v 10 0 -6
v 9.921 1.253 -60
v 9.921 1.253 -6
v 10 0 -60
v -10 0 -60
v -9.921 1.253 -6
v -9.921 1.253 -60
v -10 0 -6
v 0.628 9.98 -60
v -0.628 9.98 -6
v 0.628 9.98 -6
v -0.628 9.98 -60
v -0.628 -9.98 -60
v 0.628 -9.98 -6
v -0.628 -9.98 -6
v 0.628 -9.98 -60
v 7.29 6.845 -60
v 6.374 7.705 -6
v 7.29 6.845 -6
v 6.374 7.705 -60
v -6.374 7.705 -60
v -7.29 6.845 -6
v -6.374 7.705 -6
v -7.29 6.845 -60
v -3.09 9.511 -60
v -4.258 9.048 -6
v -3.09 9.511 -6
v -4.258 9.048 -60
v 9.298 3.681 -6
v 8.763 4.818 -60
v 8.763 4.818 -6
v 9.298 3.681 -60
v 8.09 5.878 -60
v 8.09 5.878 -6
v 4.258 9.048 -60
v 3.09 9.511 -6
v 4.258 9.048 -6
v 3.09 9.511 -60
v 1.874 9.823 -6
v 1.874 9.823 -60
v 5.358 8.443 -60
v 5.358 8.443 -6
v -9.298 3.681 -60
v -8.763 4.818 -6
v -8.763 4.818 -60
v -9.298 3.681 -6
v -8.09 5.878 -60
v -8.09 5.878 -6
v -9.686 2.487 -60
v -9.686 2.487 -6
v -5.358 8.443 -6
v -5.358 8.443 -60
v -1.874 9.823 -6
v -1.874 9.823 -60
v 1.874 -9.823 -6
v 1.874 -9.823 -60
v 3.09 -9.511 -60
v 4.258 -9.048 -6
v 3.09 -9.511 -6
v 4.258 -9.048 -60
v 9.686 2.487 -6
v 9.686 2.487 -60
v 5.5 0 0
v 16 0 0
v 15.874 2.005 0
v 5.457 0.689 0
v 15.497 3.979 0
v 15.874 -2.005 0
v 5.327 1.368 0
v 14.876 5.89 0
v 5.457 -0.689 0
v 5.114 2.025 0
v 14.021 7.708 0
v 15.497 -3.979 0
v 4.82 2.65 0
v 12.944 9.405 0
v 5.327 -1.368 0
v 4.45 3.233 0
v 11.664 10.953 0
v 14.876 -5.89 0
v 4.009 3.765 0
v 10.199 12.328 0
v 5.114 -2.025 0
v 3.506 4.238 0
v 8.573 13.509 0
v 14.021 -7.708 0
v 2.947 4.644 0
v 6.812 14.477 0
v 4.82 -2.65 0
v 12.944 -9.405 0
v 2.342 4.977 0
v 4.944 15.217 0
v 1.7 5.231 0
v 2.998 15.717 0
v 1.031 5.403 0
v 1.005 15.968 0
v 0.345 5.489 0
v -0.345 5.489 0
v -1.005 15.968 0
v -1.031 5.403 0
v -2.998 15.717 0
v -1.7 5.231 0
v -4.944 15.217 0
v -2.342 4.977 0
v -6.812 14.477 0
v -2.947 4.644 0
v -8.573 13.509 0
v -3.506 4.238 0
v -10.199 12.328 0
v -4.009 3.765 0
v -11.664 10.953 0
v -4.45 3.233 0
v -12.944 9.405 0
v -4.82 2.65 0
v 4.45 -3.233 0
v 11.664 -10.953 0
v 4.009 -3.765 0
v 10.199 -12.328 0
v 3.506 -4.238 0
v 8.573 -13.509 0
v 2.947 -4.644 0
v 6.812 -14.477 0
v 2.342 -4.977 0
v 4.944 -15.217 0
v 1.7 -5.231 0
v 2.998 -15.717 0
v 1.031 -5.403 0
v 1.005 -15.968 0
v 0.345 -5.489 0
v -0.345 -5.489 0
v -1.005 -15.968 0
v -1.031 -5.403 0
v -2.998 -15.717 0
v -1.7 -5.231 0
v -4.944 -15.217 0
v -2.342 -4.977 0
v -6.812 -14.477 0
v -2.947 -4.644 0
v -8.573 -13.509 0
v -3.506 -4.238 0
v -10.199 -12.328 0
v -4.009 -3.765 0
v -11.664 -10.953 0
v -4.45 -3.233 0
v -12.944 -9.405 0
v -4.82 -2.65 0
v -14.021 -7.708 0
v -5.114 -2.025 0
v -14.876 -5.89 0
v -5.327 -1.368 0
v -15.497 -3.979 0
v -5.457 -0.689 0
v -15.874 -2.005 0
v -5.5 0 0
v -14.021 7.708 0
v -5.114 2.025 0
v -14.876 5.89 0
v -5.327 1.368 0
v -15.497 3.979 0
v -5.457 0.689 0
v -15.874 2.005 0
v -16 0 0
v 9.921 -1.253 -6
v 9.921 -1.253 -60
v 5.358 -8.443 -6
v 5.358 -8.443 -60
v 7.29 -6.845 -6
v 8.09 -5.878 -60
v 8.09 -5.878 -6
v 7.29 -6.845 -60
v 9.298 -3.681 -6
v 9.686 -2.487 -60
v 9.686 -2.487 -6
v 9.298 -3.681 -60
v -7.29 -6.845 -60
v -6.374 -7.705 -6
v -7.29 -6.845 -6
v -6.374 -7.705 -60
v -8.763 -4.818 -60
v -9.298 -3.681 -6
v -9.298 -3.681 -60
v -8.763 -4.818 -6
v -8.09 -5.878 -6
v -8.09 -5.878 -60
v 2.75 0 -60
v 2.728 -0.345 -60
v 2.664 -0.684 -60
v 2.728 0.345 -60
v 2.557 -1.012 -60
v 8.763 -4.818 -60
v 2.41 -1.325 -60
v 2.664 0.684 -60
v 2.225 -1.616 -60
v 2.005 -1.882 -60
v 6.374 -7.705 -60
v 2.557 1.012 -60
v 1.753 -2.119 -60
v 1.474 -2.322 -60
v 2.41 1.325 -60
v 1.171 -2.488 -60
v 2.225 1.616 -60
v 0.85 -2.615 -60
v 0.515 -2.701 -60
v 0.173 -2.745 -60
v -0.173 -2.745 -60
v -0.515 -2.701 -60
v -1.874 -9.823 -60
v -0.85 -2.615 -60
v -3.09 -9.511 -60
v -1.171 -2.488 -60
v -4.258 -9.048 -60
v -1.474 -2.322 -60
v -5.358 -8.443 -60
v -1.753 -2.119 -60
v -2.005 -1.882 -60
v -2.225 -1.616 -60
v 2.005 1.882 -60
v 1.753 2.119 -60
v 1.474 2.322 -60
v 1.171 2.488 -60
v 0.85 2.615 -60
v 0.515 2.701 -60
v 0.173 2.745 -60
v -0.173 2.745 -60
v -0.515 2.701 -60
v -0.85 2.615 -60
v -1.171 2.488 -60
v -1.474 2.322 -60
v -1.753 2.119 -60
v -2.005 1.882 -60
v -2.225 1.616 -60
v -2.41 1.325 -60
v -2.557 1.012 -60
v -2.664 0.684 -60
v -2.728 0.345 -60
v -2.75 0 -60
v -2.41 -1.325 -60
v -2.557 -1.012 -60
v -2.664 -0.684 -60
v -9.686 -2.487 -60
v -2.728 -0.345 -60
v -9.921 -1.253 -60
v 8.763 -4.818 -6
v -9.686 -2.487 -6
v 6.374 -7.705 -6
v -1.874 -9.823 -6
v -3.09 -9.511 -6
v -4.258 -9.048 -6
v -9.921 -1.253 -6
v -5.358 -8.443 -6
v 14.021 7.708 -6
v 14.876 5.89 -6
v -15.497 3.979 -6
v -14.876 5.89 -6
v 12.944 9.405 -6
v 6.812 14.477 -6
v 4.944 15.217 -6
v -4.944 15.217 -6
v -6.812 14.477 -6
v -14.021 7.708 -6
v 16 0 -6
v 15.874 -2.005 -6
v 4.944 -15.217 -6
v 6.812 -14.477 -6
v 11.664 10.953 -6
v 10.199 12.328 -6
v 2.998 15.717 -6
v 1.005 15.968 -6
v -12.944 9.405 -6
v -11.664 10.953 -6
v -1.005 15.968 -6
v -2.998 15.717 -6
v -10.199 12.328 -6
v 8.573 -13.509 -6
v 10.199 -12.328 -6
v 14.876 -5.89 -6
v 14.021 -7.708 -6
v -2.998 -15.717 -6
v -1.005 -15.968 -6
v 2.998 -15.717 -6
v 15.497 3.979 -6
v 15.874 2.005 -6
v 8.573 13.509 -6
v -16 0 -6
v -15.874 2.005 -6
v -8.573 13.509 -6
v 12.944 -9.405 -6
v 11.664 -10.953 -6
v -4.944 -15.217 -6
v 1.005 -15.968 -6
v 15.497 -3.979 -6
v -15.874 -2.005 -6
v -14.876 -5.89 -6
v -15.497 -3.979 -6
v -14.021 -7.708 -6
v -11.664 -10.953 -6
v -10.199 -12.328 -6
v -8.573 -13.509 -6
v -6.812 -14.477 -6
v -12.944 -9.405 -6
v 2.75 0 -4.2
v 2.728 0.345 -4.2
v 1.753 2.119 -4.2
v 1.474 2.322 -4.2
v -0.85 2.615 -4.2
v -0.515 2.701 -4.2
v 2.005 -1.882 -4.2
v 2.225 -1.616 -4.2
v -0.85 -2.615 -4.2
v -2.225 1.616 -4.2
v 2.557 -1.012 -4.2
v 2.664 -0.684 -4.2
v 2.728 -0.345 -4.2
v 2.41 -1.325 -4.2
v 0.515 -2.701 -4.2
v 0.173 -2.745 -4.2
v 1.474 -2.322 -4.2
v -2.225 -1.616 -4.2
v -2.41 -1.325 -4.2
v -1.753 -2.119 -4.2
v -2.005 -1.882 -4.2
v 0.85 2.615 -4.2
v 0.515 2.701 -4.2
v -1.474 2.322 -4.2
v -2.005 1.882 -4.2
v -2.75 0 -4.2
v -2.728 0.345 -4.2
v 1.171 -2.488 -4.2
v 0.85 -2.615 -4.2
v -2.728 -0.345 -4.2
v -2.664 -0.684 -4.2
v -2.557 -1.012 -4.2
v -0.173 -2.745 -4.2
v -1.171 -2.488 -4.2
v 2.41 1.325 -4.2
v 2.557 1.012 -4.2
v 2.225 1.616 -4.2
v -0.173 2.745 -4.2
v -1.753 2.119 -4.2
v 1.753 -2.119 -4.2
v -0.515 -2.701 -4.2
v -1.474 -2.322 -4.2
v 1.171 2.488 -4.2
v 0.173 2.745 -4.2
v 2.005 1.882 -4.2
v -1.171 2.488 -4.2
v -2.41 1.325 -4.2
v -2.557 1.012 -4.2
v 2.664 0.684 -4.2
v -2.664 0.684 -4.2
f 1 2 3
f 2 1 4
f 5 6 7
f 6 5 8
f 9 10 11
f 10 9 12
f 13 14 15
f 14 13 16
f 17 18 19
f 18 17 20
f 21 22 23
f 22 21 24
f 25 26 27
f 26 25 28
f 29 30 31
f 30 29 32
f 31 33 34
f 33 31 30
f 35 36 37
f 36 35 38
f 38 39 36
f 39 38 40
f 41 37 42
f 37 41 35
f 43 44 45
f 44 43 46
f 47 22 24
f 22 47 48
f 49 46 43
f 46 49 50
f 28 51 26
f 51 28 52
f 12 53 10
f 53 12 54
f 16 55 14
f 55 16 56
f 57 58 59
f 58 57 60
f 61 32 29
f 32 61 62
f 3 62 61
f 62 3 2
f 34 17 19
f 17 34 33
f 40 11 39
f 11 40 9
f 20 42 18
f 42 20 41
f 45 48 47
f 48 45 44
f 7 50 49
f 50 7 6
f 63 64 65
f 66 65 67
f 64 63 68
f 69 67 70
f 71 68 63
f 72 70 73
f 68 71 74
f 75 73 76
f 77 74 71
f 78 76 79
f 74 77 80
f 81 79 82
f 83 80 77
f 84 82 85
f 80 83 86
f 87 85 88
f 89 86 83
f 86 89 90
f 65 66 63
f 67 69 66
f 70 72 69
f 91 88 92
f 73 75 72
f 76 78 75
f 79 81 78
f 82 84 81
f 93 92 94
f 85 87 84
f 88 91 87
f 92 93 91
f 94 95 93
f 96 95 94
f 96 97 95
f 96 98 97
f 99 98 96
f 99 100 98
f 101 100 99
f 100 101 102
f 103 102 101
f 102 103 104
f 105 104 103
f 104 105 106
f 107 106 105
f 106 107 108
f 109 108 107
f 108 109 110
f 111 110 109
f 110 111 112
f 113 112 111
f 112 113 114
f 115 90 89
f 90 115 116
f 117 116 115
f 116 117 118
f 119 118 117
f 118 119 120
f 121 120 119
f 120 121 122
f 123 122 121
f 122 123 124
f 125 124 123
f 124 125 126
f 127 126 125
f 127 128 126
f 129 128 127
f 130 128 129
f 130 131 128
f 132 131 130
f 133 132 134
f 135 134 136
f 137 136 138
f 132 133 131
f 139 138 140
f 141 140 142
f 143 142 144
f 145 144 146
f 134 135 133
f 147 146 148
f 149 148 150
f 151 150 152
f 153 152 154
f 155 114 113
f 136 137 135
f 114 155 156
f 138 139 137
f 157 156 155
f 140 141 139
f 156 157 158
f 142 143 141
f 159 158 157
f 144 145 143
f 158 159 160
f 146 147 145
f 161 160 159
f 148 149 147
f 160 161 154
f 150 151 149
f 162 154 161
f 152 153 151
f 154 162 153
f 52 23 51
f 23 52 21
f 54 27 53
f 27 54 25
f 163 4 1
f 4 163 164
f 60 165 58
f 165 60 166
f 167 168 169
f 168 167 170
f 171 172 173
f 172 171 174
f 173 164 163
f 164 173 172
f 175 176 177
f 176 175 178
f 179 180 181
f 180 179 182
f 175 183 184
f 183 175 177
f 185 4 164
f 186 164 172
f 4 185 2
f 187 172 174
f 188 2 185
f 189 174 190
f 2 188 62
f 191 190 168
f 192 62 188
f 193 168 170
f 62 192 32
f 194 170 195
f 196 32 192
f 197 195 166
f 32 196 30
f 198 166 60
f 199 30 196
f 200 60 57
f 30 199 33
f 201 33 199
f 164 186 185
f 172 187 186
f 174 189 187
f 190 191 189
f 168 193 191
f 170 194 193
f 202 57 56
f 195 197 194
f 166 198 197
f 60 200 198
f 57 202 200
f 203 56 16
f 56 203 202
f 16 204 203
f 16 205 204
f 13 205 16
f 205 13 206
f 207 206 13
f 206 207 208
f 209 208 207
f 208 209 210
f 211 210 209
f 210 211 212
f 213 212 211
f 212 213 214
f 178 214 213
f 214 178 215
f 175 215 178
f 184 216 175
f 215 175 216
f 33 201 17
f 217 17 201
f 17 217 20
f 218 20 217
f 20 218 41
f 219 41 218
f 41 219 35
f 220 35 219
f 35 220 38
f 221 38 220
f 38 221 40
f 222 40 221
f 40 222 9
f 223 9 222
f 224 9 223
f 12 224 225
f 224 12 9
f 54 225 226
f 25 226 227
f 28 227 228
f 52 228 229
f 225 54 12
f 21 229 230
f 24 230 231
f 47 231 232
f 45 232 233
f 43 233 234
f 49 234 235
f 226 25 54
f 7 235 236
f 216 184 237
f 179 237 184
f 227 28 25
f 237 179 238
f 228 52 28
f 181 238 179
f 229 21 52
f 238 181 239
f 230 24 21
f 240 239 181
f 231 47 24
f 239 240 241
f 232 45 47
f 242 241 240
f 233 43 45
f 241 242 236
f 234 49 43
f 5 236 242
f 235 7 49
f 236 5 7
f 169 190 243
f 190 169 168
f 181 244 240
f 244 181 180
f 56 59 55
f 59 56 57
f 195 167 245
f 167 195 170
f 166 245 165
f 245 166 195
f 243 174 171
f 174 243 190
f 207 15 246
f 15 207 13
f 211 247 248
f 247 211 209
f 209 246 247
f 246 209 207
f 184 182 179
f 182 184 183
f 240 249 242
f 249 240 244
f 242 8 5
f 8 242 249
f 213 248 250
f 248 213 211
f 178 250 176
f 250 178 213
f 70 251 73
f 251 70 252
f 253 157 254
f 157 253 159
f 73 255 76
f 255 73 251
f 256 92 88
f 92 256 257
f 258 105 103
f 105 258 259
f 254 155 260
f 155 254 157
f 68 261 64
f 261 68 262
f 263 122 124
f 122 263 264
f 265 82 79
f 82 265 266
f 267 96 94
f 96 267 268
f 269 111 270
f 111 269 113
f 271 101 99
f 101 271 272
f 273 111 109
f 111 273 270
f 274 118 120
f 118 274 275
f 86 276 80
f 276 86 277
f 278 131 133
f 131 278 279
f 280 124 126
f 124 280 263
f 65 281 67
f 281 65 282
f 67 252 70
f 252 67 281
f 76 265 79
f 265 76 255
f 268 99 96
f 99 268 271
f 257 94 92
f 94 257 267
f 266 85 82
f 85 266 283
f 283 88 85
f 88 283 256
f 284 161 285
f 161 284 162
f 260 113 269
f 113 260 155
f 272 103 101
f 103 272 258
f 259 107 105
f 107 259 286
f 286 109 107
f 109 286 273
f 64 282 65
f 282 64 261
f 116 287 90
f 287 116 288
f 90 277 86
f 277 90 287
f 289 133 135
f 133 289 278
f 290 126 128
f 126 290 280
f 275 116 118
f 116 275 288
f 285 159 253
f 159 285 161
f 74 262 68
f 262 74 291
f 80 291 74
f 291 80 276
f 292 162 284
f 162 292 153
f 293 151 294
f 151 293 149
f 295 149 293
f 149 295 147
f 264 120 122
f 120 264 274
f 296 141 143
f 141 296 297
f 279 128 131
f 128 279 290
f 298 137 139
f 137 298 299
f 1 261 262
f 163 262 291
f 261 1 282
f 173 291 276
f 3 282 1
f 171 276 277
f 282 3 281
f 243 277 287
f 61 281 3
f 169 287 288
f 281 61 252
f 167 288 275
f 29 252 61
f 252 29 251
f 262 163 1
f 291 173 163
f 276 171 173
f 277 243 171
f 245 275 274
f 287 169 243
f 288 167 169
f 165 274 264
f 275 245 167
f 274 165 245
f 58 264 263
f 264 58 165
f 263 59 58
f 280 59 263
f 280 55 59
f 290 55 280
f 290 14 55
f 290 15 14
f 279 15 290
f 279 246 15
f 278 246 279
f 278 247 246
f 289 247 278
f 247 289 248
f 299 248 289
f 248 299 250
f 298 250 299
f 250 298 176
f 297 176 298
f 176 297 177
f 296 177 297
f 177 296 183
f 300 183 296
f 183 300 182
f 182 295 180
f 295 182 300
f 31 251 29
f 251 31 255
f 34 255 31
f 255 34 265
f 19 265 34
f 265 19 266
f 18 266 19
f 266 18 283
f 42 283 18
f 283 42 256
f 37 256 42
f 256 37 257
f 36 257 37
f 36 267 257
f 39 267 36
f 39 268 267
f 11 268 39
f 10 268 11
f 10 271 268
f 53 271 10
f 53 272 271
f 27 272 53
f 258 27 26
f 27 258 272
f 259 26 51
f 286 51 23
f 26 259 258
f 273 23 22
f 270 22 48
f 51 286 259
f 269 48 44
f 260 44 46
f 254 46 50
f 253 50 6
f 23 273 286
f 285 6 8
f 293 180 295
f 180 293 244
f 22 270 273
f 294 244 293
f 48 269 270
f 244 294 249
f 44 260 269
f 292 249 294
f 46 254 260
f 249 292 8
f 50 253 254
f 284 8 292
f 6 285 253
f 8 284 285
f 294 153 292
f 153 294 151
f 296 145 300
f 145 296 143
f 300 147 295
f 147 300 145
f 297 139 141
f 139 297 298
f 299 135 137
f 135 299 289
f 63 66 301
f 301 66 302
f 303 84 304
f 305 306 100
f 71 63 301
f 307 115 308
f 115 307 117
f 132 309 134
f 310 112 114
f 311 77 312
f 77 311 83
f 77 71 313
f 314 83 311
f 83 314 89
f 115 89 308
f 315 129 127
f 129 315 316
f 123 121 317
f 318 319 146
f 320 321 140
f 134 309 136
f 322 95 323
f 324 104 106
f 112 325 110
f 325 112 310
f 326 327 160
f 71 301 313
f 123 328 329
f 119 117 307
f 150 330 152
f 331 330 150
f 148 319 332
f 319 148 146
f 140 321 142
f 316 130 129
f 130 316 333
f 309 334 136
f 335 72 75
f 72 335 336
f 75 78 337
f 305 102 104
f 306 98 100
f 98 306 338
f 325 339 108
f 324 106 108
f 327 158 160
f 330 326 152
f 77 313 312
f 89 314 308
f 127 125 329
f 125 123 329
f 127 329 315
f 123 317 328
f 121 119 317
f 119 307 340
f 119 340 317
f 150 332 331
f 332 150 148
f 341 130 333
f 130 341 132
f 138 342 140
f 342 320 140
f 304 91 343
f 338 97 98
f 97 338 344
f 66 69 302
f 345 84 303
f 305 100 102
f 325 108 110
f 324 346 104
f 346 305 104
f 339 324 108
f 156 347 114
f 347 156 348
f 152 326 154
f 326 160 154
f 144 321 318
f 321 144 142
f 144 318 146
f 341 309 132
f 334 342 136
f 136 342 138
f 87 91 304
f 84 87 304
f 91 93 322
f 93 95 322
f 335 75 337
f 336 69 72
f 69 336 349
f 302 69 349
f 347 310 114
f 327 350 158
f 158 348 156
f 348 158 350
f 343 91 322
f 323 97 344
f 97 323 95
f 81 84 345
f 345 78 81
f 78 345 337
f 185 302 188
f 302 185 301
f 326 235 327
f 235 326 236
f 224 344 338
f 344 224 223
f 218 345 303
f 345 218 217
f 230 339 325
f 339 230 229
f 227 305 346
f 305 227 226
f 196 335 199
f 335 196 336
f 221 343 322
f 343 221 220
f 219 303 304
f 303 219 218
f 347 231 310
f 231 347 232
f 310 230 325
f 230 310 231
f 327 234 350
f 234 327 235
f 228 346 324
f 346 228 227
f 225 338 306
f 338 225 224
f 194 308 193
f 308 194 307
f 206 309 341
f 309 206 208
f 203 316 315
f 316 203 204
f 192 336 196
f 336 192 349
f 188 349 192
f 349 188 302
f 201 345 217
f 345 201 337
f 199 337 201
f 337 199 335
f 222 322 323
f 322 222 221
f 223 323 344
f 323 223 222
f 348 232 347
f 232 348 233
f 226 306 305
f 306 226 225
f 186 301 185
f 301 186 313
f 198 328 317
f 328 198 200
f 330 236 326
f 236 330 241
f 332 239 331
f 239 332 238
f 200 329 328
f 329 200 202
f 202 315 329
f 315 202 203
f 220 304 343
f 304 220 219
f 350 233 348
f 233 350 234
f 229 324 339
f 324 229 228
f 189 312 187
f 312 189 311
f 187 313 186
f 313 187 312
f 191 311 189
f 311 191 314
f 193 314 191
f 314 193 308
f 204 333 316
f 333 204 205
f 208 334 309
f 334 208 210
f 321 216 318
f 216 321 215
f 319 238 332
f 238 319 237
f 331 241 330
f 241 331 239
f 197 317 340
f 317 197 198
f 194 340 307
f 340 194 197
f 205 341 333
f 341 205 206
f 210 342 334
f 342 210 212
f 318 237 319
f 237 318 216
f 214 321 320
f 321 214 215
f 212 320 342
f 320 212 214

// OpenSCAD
$fn = 50;


difference() {
	union() {
		translate(v = [0, 0, -60.0000000000]) {
			cylinder(h = 60, r = 10.0000000000);
		}
		translate(v = [0, 0, -6.0000000000]) {
			cylinder(h = 6, r = 16.0000000000);
		}
	}
	union() {
		translate(v = [0, 0, 0]) {
			rotate(a = [0, 0, 0]) {
				difference() {
					union() {
						#translate(v = [0, 0, -60.0000000000]) {
							cylinder(h = 60, r = 2.2500000000);
						}
						#translate(v = [0, 0, -4.2000000000]) {
							cylinder(h = 4.2000000000, r1 = 2.7500000000, r2 = 5.5000000000);
						}
						#translate(v = [0, 0, -60.0000000000]) {
							cylinder(h = 60, r = 2.7500000000);
						}
						#translate(v = [0, 0, -60.0000000000]) {
							cylinder(h = 60, r = 2.2500000000);
						}
					}
					union();
				}
			}
		}
	}
}
